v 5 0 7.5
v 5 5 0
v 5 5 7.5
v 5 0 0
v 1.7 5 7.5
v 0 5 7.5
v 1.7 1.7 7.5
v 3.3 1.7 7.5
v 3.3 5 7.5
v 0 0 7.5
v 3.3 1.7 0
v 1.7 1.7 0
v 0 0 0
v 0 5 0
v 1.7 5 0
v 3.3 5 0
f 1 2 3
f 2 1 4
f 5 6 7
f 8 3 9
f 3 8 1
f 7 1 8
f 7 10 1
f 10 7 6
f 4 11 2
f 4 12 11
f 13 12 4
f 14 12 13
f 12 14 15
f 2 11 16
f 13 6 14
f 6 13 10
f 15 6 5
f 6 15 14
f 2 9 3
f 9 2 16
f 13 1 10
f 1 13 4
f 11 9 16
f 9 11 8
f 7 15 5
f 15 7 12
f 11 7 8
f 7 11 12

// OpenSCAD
// Parameters
cube_size = 5;
cube_height = 7.5;
slot_width = 1.6;


// Slot cutout
difference() {
  cube([cube_size, cube_size, cube_height]); // Create a cube
  translate([(cube_size-slot_width)/2, (cube_size-slot_width)/2, 0]) {// Position the slot in the center of the cube
  cube([slot_width, cube_size, cube_height]); // Cut out the slot
  }
}
